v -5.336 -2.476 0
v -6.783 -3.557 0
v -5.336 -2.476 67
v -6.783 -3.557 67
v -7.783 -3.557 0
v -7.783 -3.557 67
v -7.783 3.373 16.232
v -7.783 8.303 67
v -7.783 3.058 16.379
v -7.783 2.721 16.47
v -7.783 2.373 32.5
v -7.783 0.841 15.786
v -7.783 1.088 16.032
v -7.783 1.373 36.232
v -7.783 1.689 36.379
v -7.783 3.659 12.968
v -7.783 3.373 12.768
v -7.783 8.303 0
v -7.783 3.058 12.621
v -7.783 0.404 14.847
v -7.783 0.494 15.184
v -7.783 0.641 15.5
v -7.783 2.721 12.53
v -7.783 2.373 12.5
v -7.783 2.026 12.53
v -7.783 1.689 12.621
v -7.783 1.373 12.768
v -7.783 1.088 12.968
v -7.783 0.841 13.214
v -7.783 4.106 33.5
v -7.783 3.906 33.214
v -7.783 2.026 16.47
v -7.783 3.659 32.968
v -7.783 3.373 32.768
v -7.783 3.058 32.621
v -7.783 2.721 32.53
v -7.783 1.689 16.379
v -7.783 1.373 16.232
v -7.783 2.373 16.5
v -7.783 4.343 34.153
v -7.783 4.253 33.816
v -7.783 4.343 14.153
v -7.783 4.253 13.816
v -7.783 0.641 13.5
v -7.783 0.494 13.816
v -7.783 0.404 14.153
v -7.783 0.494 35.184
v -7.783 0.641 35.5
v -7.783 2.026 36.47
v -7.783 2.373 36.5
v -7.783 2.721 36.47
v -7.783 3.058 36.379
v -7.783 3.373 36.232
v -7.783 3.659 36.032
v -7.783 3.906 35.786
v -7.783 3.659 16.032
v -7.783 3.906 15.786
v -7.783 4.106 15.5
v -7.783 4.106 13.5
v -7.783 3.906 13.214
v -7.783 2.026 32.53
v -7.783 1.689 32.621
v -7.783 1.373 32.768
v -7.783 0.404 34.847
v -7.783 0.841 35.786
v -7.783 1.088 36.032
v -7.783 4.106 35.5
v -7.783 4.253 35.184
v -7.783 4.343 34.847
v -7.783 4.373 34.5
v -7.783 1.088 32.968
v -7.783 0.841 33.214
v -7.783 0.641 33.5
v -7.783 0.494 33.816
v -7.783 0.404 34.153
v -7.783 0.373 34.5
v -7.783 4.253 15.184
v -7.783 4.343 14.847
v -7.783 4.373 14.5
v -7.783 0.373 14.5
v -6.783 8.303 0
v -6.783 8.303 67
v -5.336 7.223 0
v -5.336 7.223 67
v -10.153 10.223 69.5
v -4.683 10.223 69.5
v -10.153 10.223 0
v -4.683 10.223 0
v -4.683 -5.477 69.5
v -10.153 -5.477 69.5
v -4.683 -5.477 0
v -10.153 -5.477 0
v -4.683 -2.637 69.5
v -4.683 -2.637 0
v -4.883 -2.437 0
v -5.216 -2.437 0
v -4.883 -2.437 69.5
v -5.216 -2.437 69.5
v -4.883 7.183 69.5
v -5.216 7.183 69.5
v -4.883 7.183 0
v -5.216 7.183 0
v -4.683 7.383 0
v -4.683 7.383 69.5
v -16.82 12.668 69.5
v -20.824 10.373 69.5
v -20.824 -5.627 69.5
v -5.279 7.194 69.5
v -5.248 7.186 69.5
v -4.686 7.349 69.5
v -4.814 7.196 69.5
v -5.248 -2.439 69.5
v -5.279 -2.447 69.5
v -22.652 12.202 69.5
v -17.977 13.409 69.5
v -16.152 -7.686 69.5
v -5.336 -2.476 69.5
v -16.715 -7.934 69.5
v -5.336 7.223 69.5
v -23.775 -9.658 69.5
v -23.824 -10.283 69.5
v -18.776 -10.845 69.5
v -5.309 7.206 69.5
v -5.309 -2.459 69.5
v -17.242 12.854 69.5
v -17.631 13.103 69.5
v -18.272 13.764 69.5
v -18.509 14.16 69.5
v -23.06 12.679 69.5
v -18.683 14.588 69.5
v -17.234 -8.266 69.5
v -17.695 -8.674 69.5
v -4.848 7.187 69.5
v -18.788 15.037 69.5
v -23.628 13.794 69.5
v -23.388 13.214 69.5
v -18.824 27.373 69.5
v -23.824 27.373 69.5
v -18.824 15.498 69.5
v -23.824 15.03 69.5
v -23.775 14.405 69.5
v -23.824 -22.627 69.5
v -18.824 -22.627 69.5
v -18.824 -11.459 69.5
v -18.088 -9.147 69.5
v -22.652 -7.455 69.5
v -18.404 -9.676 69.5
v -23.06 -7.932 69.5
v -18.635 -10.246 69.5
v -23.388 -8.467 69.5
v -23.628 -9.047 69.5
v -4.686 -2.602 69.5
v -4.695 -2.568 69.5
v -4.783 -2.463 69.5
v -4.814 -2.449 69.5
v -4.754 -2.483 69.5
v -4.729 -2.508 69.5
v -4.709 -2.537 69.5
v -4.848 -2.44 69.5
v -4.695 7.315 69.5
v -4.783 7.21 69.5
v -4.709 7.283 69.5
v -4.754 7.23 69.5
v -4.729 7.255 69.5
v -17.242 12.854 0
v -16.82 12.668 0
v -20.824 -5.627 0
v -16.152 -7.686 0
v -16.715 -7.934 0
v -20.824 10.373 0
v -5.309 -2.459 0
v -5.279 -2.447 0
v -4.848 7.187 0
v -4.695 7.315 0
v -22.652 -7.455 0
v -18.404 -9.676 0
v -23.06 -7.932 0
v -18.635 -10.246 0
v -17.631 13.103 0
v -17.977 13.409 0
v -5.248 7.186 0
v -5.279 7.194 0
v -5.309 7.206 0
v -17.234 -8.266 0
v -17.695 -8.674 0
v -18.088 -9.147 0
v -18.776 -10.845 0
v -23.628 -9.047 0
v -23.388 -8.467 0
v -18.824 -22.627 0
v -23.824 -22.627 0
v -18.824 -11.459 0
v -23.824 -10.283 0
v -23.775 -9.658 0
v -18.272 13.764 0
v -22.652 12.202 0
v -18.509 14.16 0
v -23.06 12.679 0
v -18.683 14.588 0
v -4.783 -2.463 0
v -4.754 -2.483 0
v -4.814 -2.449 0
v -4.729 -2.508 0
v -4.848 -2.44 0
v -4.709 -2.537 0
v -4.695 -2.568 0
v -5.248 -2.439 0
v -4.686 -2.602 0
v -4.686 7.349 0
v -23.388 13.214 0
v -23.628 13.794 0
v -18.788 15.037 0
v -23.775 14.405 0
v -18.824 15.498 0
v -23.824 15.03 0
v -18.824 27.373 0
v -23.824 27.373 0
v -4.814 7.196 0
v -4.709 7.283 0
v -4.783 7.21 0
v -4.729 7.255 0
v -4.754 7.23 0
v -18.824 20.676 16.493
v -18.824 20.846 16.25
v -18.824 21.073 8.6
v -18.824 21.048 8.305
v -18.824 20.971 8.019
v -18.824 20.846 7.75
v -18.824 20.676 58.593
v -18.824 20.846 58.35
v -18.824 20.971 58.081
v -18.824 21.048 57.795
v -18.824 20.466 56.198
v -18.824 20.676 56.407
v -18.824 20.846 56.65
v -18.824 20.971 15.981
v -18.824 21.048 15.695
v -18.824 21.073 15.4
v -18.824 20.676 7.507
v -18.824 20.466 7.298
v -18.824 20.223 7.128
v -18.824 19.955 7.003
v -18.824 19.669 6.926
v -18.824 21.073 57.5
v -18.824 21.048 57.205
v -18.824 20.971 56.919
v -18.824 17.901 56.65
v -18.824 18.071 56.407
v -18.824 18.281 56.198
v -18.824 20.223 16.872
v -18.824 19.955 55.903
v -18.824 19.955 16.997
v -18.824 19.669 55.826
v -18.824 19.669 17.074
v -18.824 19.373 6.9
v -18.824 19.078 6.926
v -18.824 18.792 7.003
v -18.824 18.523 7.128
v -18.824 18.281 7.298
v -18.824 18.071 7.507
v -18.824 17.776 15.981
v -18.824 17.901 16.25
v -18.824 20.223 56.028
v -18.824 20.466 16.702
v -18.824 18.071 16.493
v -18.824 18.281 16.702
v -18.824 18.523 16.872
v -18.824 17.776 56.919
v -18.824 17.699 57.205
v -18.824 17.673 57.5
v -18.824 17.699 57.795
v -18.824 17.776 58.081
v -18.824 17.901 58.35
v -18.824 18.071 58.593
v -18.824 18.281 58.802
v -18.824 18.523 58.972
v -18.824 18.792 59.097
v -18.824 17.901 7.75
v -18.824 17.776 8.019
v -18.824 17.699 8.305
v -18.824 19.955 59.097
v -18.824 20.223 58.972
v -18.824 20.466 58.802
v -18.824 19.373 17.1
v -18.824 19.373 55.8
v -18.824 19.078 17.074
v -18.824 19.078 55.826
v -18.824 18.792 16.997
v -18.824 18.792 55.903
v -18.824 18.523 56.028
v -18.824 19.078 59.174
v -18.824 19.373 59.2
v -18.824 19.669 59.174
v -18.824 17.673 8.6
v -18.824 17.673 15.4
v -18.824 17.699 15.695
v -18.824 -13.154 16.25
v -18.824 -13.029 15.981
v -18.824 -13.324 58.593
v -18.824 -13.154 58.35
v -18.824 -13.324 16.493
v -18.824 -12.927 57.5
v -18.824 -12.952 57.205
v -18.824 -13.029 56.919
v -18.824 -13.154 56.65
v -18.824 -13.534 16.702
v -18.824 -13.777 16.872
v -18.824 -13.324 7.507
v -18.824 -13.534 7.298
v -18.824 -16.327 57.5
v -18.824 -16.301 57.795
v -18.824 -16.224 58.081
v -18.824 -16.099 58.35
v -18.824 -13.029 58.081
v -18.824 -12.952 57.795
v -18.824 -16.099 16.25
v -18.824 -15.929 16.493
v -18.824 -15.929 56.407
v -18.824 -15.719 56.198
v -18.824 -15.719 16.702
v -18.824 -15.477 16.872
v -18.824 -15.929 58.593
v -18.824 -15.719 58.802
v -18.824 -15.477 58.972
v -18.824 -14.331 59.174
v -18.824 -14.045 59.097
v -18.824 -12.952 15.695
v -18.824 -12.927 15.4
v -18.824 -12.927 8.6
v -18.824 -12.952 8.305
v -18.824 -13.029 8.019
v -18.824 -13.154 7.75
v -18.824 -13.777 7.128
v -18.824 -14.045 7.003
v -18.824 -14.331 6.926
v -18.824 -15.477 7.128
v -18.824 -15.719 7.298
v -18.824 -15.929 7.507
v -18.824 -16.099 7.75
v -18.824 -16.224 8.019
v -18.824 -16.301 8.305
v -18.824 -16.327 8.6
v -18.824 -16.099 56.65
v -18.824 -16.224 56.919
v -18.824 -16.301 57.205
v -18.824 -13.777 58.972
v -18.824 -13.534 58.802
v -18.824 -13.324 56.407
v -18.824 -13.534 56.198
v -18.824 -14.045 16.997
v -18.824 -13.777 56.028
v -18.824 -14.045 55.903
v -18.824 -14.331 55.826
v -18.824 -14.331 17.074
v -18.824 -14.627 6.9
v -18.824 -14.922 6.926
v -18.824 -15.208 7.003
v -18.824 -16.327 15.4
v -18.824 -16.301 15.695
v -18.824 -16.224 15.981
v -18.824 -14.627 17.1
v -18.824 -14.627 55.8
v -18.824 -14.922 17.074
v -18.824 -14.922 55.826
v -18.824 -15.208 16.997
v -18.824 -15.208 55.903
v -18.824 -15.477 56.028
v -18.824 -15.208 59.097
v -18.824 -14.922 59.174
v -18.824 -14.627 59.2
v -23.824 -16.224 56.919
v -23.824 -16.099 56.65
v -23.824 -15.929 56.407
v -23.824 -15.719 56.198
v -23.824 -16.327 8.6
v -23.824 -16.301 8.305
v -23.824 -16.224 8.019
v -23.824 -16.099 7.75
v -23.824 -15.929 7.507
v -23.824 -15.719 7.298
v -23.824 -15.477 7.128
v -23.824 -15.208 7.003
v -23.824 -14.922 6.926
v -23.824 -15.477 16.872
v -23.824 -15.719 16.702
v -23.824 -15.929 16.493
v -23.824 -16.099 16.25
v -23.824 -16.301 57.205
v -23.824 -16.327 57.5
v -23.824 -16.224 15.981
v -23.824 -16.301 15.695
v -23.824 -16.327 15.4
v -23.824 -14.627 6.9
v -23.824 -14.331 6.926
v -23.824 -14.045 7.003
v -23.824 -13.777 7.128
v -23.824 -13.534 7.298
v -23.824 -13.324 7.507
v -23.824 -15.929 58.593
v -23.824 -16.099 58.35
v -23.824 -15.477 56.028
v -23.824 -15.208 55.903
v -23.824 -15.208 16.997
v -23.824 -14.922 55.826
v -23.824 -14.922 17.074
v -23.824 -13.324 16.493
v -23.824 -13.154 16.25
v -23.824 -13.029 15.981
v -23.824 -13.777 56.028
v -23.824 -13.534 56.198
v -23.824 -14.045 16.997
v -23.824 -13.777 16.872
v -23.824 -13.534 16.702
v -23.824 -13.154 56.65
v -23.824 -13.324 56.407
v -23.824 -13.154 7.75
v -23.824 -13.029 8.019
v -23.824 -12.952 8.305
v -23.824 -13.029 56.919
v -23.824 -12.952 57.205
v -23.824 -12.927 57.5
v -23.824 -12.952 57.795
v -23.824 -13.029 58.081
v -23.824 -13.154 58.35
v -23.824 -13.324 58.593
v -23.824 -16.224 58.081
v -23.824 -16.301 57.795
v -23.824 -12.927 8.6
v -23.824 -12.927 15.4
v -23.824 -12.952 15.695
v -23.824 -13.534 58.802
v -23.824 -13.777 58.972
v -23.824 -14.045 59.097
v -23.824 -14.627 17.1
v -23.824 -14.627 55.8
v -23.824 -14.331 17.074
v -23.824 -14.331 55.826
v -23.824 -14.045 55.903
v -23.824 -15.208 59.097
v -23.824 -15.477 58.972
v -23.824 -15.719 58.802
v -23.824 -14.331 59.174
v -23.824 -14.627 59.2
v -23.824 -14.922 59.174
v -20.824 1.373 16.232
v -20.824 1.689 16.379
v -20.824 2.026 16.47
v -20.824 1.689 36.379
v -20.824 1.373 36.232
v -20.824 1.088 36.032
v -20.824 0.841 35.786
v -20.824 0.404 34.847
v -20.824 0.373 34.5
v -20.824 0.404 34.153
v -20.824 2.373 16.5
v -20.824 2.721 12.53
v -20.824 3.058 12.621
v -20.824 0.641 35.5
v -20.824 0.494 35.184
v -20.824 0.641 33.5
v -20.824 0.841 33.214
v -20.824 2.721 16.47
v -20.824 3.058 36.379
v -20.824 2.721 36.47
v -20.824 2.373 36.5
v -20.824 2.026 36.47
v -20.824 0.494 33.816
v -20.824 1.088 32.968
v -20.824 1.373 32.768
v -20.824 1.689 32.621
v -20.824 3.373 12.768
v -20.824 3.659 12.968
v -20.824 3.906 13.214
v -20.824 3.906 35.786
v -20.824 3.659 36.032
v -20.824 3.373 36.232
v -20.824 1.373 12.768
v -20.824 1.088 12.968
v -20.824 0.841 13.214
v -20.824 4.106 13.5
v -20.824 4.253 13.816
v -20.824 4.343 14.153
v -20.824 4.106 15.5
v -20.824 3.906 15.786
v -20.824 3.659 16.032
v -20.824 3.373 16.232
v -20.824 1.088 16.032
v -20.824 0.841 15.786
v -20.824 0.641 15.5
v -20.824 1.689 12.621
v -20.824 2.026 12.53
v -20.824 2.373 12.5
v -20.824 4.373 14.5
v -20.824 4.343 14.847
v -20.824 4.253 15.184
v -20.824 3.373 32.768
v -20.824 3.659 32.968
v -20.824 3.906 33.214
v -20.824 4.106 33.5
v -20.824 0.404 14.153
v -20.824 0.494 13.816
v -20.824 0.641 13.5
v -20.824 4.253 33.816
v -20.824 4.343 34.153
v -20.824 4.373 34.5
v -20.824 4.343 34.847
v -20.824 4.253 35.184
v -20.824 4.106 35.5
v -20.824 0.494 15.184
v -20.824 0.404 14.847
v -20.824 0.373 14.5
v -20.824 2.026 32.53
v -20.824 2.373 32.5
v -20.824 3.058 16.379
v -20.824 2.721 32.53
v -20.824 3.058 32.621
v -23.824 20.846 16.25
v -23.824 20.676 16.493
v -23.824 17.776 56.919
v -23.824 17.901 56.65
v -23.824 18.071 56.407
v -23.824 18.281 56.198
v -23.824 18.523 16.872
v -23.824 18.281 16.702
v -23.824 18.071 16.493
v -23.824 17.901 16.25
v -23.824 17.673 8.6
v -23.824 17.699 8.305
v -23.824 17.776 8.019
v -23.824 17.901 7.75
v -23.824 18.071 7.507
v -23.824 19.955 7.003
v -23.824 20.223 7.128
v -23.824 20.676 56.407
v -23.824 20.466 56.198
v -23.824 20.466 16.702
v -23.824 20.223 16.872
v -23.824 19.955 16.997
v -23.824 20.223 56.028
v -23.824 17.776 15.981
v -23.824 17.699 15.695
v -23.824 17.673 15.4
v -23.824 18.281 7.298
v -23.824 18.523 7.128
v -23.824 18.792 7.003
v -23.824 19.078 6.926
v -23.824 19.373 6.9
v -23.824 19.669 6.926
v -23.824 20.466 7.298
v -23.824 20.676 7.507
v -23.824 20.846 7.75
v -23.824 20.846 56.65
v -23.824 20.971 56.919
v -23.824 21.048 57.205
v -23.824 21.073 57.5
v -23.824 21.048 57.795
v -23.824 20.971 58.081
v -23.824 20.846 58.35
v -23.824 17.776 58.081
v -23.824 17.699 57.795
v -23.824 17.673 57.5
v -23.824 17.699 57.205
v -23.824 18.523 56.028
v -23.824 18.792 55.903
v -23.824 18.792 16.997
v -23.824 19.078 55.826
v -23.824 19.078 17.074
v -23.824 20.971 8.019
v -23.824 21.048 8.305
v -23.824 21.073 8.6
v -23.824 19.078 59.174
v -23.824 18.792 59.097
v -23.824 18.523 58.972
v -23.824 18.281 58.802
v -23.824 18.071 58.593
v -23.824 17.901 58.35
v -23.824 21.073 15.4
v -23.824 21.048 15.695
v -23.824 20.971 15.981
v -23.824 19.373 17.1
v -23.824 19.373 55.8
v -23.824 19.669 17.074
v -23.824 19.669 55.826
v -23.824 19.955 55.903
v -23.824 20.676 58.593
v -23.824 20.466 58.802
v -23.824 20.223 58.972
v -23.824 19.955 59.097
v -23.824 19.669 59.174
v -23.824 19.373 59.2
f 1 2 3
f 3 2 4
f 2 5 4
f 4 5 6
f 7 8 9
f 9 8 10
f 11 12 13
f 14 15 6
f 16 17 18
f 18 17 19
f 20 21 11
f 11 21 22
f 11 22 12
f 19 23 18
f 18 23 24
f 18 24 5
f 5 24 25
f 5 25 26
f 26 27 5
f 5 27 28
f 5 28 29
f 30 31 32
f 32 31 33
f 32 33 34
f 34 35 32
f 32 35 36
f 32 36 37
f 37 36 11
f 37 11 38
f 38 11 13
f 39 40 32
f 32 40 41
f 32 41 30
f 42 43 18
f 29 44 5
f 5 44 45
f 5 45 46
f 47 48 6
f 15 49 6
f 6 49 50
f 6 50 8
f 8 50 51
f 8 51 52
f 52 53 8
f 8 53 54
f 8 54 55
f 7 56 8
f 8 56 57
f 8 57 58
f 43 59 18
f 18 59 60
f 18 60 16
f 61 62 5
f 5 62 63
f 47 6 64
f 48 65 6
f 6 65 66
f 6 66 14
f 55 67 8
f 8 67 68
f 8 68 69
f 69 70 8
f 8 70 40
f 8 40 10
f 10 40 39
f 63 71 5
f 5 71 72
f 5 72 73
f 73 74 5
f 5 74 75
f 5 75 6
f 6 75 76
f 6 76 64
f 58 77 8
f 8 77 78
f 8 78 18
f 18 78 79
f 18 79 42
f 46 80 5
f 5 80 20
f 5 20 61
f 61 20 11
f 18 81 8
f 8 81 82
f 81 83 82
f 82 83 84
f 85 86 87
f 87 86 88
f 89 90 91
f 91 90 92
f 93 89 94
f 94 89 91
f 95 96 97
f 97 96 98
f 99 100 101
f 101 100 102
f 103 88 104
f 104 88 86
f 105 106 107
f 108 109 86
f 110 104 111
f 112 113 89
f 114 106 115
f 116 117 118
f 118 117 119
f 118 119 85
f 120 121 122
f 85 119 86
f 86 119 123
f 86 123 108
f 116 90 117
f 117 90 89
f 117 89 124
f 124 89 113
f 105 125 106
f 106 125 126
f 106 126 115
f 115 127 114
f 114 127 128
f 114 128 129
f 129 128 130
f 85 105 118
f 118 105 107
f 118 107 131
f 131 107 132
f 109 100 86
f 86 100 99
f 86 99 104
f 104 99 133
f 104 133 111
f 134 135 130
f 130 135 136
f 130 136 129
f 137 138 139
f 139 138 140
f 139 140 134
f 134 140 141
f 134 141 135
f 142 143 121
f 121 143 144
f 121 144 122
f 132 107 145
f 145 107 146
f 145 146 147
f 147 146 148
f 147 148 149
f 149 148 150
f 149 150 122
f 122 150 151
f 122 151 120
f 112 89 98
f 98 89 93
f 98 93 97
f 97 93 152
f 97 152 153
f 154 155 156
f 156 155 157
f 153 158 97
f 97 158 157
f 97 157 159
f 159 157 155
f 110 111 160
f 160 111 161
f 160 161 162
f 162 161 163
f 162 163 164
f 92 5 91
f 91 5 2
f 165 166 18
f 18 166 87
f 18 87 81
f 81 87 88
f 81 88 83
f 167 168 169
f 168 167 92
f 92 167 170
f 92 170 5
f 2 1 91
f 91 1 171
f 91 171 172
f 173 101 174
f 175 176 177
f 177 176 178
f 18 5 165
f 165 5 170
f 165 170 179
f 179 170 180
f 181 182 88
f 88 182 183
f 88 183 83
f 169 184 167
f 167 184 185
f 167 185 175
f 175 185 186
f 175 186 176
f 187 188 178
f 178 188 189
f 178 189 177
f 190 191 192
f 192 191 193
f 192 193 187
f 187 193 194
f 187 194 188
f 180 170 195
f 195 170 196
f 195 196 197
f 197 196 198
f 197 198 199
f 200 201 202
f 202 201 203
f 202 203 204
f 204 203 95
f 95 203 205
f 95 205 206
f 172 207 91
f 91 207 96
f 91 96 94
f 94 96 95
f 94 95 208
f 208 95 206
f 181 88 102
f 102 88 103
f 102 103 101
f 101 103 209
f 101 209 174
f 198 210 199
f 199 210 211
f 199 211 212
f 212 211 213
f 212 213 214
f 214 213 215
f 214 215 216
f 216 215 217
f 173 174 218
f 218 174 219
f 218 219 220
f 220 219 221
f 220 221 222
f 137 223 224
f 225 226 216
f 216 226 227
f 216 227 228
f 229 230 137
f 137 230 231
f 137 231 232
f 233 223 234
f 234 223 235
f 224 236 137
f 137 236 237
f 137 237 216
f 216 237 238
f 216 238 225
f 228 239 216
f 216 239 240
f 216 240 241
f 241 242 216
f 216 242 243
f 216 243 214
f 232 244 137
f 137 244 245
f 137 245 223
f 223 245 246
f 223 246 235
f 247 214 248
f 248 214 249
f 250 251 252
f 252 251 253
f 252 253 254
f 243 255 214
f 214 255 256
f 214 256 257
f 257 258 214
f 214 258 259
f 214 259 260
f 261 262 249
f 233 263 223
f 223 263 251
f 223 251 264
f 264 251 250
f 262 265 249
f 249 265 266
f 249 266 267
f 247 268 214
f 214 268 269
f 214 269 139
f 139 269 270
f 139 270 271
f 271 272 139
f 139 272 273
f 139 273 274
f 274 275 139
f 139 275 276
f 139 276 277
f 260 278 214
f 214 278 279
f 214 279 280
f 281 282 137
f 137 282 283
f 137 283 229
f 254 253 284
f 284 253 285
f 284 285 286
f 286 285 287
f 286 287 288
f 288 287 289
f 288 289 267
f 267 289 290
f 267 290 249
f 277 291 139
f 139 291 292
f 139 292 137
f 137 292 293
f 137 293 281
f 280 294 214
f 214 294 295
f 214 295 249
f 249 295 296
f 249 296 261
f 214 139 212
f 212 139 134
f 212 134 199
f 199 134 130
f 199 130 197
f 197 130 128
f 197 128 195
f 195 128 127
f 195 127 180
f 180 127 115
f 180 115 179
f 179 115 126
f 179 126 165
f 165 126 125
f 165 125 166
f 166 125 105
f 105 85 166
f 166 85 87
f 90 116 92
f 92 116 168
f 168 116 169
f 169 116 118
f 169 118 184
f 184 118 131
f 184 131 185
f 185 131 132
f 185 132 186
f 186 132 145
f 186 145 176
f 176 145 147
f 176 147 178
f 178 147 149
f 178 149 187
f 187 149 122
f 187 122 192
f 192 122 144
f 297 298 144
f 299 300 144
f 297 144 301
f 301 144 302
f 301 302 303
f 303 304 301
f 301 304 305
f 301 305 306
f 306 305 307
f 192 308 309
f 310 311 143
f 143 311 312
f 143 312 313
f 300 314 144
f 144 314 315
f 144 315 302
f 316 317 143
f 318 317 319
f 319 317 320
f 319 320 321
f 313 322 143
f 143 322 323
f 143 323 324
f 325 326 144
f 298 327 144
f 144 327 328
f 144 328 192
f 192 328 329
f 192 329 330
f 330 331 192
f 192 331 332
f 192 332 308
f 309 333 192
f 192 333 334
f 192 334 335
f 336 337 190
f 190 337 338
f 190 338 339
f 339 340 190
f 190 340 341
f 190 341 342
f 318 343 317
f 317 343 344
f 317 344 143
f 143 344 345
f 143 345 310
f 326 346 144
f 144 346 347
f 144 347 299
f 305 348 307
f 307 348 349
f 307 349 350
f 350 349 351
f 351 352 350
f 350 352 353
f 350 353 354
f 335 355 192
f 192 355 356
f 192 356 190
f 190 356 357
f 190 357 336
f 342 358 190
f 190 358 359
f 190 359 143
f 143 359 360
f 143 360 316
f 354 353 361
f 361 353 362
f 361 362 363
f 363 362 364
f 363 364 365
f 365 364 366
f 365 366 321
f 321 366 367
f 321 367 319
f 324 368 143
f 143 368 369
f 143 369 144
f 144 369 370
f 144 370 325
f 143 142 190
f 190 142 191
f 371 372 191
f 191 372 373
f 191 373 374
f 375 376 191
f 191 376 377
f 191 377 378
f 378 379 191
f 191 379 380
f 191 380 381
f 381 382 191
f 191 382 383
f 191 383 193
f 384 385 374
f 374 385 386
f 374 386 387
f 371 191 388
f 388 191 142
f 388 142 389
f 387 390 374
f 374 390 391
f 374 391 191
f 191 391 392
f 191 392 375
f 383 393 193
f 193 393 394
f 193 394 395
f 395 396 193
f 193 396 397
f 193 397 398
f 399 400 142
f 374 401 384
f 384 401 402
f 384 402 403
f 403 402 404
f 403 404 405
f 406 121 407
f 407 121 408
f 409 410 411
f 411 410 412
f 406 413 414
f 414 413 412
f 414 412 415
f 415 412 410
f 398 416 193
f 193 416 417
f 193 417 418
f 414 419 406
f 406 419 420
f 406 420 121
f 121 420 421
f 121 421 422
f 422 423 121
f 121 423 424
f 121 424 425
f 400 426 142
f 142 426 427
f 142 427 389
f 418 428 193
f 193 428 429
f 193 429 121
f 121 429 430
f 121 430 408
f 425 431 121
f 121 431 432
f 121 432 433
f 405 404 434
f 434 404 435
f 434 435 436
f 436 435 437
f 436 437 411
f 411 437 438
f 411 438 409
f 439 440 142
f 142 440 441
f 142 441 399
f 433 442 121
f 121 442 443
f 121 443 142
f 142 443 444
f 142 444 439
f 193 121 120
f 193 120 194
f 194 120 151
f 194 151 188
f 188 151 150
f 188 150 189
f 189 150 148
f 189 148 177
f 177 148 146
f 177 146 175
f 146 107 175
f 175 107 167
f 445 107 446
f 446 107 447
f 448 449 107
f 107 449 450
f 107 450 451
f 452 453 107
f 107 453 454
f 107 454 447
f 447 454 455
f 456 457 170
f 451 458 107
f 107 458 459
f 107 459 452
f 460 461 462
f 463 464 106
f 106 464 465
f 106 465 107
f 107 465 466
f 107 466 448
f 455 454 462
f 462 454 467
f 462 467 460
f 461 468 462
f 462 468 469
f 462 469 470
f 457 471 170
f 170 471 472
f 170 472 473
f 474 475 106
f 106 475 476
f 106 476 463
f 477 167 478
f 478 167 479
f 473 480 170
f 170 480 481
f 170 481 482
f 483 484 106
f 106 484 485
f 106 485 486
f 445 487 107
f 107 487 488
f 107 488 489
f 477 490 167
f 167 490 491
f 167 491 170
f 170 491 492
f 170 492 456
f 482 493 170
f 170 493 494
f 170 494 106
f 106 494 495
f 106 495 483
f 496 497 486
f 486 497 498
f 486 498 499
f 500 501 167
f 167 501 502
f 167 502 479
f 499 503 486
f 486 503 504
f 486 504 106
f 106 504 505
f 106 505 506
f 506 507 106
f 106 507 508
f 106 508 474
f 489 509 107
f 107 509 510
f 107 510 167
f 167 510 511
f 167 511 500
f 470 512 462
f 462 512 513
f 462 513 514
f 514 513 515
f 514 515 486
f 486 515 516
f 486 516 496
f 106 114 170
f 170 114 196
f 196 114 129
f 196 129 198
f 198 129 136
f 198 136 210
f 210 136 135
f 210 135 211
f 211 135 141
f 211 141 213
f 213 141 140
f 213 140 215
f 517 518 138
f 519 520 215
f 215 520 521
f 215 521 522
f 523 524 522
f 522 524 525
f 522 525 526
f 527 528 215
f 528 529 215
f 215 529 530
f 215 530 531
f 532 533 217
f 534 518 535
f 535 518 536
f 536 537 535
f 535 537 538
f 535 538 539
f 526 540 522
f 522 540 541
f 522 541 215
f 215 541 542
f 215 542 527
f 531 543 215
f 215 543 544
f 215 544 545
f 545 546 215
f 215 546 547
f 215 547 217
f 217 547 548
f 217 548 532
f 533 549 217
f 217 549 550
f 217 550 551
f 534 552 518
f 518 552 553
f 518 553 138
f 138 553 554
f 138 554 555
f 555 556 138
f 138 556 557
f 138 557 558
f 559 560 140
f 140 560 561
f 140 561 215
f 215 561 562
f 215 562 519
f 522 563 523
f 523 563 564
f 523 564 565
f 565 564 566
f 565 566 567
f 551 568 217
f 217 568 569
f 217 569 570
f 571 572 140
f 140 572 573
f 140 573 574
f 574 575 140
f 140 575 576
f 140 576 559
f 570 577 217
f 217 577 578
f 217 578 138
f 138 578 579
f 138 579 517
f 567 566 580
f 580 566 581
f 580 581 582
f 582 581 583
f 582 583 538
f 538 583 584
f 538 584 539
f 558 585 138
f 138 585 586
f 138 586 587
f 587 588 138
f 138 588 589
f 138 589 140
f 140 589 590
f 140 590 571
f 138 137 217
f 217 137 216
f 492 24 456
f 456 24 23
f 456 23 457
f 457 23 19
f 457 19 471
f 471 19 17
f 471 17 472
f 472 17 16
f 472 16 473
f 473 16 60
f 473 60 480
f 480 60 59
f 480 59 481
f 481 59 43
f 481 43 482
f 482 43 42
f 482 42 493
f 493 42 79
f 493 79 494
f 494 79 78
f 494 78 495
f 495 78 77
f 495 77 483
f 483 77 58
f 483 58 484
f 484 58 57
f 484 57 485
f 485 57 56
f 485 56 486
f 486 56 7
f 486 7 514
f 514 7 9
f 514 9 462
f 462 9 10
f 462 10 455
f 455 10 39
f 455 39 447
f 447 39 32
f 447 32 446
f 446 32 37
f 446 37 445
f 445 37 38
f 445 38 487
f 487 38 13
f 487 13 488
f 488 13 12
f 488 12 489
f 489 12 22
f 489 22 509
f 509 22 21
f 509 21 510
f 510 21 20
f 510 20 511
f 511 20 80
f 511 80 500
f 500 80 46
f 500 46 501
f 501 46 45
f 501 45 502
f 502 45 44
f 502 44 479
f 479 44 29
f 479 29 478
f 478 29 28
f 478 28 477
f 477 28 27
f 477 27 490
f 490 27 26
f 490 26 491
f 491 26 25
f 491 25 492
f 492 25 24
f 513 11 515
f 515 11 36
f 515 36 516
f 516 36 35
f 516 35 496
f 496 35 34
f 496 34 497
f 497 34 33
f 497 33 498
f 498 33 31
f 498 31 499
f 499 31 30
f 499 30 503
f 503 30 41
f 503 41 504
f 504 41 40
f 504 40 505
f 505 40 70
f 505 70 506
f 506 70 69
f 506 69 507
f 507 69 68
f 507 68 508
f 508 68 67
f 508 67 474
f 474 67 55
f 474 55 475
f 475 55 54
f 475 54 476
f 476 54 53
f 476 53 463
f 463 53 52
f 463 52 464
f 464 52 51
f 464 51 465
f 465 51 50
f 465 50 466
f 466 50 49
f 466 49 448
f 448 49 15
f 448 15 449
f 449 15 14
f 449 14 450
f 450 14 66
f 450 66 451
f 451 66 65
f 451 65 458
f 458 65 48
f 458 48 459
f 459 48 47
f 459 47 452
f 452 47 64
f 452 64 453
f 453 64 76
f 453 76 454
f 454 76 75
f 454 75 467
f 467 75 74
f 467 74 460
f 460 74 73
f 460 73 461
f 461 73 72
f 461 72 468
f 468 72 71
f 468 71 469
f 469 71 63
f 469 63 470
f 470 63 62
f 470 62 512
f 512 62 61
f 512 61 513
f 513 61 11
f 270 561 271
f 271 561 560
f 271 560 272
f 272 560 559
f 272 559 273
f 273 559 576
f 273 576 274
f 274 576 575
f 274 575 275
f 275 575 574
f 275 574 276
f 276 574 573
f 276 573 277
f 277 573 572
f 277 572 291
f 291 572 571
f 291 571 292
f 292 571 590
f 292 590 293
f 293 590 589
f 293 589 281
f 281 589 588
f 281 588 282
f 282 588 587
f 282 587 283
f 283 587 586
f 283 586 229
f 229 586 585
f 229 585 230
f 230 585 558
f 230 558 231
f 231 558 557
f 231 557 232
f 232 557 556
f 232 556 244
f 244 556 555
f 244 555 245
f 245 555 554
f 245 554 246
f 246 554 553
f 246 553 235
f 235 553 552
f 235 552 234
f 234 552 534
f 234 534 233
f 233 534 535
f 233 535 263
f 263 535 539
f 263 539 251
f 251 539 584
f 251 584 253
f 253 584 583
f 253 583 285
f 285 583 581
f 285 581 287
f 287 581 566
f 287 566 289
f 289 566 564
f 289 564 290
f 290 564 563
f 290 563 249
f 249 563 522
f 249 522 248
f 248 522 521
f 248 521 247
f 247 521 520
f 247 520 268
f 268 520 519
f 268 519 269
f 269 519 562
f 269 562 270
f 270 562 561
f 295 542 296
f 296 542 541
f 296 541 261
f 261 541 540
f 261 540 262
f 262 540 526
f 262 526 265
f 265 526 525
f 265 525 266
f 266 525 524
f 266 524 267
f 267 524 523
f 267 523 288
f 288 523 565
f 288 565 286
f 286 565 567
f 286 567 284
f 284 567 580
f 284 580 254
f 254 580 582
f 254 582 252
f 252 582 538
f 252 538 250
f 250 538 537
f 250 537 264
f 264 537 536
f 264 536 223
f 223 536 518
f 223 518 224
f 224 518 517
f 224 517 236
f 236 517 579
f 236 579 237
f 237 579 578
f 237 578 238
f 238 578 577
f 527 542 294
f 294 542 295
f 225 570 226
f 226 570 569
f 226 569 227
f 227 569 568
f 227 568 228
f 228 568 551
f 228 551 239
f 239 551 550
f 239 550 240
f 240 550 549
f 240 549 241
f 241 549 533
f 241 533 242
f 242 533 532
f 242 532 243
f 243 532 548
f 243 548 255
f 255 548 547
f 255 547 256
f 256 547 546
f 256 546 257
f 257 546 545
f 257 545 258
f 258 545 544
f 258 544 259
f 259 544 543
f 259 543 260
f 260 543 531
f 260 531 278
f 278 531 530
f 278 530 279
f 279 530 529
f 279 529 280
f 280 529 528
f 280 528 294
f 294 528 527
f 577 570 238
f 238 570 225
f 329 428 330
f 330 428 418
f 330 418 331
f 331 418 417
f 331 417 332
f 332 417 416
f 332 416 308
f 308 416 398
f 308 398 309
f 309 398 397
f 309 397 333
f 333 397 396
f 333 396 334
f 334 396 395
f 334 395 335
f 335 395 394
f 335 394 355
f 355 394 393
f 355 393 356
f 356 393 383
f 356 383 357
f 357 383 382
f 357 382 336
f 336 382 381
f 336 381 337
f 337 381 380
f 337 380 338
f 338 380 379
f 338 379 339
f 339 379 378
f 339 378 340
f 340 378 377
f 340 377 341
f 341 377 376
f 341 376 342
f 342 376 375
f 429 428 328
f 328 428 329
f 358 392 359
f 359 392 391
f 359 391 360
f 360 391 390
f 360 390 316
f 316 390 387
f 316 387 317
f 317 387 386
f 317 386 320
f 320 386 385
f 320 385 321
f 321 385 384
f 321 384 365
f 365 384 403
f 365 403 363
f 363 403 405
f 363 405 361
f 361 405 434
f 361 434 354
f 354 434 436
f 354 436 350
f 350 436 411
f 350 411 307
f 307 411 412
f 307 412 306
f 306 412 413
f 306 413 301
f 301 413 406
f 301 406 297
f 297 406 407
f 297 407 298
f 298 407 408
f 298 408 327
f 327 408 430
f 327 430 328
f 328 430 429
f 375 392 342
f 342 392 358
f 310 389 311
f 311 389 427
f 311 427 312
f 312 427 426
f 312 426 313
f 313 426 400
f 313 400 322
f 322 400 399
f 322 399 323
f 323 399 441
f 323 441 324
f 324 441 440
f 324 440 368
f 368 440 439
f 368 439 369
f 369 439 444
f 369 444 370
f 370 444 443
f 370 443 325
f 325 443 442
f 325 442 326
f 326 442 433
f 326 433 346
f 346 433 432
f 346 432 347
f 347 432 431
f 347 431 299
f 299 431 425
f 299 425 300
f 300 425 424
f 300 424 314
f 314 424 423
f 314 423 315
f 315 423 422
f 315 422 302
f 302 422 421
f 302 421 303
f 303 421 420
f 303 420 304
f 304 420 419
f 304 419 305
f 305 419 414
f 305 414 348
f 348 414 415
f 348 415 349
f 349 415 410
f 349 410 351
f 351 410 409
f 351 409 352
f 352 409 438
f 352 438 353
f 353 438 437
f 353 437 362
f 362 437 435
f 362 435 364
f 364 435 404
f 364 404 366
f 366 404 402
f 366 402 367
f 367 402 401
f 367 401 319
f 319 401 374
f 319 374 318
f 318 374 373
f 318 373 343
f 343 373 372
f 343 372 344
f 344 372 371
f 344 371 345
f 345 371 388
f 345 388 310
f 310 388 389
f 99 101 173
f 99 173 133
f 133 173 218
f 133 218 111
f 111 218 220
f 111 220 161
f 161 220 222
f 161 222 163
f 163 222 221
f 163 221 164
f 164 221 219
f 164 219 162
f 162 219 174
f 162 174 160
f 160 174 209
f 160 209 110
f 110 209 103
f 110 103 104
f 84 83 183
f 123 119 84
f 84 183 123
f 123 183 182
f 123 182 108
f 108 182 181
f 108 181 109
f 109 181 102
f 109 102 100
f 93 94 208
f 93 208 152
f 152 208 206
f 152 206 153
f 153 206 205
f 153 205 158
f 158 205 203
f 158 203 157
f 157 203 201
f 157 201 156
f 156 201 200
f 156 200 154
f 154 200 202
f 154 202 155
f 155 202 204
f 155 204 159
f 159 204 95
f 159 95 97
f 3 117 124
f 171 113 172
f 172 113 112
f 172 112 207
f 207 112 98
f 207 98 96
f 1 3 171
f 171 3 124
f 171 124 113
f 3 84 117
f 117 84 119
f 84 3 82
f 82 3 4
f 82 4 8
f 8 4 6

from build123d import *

# Parameters (mm, degrees)
BOSS_EXTRUDE2_DEPTH     = 69.5
BOSS_EXTRUDE3_DEPTH     = 69.5
CUT_EXTRUDE1_DEPTH      = 77.399445549
CUT_EXTRUDE1_DEPTH_BACK = 77.399445549
SKETCH7_R               = 2
CUT_EXTRUDE2_DEPTH      = 78.109924218
CUT_EXTRUDE2_DEPTH_BACK = 78.109924218
SKETCH8_R               = 1.7
FILLET1_R               = 0.2
BOSS_EXTRUDE4_DEPTH     = 2.5


with BuildPart() as part:
    # Sketch4 → Boss-Extrude2 (new body)
    with BuildSketch(Plane.XY):
        Polygon((-10.152602112, 10.223468411), (-10.152602112, -5.476531589), (-4.682602112, -5.476531589), (-4.682602112, -2.436531589), (-5.282780111, -2.436531589), (-6.782780111, -3.556531589), (-7.782602112, -3.556531589), (-7.782602112, 8.303468411), (-6.782780111, 8.303468411), (-5.282780111, 7.183468411), (-4.682602112, 7.183468411), (-4.682602112, 10.223468411), align=None)
    extrude(amount=BOSS_EXTRUDE2_DEPTH)

    # Sketch6 → Boss-Extrude3 (add)
    with BuildSketch(Plane.XY.offset(69.5)):
        with BuildLine():
            Line((-18.82375255, 27.373468411), (-23.82375255, 27.373468411))
            Line((-23.82375255, 27.373468411), (-23.82375255, 15.03032266))
            ThreePointArc((-23.82375255, 15.03032266), (-23.51927068, 13.499588931), (-22.652179675, 12.201895535))
            Line((-22.652179675, 12.201895535), (-20.82375255, 10.373468411))
            Line((-20.82375255, 10.373468411), (-20.82375255, -5.626531589))
            Line((-20.82375255, -5.626531589), (-22.652179675, -7.454958714))
            ThreePointArc((-22.652179675, -7.454958714), (-23.51927068, -8.752652109), (-23.82375255, -10.283385839))
            Line((-23.82375255, -10.283385839), (-23.82375255, -22.626531589))
            Line((-23.82375255, -22.626531589), (-18.82375255, -22.626531589))
            Line((-18.82375255, -22.626531589), (-18.82375255, -11.458931103))
            ThreePointArc((-18.82375255, -11.458931103), (-18.088209901, -9.14736925), (-16.152093449, -7.685933561))
            Line((-16.152093449, -7.685933561), (-10.152602112, -5.476531589))
            Line((-10.152602112, -5.476531589), (-10.152602112, 10.223468411))
            Line((-10.152602112, 10.223468411), (-16.820008224, 12.668019889))
            ThreePointArc((-16.820008224, 12.668019889), (-18.272095564, 13.764096656), (-18.82375255, 15.497768046))
            Line((-18.82375255, 15.497768046), (-18.82375255, 27.373468411))
        make_face()
    extrude(amount=-BOSS_EXTRUDE3_DEPTH)

    # Sketch7 → Cut-Extrude1 (cut, two sides: drawn at the far end of the back side and taken through both)
    with BuildSketch(Plane(origin=(-7.782602112, 0, 0), x_dir=(0, 0, -1), z_dir=(1, 0, 0)).offset(-CUT_EXTRUDE1_DEPTH_BACK)):
        with Locations(Location((-34.5, 2.373468411, 0), (0, 0, 180))):
            Circle(SKETCH7_R)
        with Locations(Location((-14.5, 2.373468411, 0), (0, 0, 180))):
            Circle(SKETCH7_R)
    extrude(amount=CUT_EXTRUDE1_DEPTH + CUT_EXTRUDE1_DEPTH_BACK, mode=Mode.SUBTRACT)

    # Sketch8 → Cut-Extrude2 (cut, two sides: drawn at the far end of the back side and taken through both)
    with BuildSketch(Plane.ZY.offset(23.82375255).offset(-CUT_EXTRUDE2_DEPTH_BACK)):
        with Locations(Location((57.5, 19.373468411, 0), (0, 0, 270))):
            Circle(SKETCH8_R)
        with Locations(Location((57.5, -14.626531589, 0), (0, 0, 270))):
            Circle(SKETCH8_R)
        with BuildLine():
            Line((15.4, 21.073468411), (8.6, 21.073468411))
            ThreePointArc((8.6, 21.073468411), (6.9, 19.373468411), (8.6, 17.673468411))
            Line((8.6, 17.673468411), (15.4, 17.673468411))
            ThreePointArc((15.4, 17.673468411), (17.1, 19.373468411), (15.4, 21.073468411))
        make_face()
        with BuildLine():
            Line((8.6, -12.926531589), (15.4, -12.926531589))
            ThreePointArc((15.4, -12.926531589), (17.1, -14.626531589), (15.4, -16.326531589))
            Line((15.4, -16.326531589), (8.6, -16.326531589))
            ThreePointArc((8.6, -16.326531589), (6.9, -14.626531589), (8.6, -12.926531589))
        make_face()
    extrude(amount=CUT_EXTRUDE2_DEPTH + CUT_EXTRUDE2_DEPTH_BACK, mode=Mode.SUBTRACT)

    # Fillet1
    fillet1_edges = [part.edges().sort_by_distance(p)[0] for p in [
        (-4.682602112, 7.183468411, 34.75),
        (-5.282780111, 7.183468411, 34.75),
        (-5.282780111, -2.436531589, 34.75),
        (-4.682602112, -2.436531589, 34.75),
    ]]
    fillet(fillet1_edges, radius=FILLET1_R)

    # Sketch9 → Boss-Extrude4 (add)
    with BuildSketch(Plane.XY.offset(69.5)):
        Polygon((-7.782602112, 8.303468411), (-7.782602112, -3.556531589), (-6.782780111, -3.556531589), (-5.336008623, -2.476275545), (-5.336008623, 7.223212366), (-6.782780111, 8.303468411), align=None)
    extrude(amount=-BOSS_EXTRUDE4_DEPTH)


solid = part.part
